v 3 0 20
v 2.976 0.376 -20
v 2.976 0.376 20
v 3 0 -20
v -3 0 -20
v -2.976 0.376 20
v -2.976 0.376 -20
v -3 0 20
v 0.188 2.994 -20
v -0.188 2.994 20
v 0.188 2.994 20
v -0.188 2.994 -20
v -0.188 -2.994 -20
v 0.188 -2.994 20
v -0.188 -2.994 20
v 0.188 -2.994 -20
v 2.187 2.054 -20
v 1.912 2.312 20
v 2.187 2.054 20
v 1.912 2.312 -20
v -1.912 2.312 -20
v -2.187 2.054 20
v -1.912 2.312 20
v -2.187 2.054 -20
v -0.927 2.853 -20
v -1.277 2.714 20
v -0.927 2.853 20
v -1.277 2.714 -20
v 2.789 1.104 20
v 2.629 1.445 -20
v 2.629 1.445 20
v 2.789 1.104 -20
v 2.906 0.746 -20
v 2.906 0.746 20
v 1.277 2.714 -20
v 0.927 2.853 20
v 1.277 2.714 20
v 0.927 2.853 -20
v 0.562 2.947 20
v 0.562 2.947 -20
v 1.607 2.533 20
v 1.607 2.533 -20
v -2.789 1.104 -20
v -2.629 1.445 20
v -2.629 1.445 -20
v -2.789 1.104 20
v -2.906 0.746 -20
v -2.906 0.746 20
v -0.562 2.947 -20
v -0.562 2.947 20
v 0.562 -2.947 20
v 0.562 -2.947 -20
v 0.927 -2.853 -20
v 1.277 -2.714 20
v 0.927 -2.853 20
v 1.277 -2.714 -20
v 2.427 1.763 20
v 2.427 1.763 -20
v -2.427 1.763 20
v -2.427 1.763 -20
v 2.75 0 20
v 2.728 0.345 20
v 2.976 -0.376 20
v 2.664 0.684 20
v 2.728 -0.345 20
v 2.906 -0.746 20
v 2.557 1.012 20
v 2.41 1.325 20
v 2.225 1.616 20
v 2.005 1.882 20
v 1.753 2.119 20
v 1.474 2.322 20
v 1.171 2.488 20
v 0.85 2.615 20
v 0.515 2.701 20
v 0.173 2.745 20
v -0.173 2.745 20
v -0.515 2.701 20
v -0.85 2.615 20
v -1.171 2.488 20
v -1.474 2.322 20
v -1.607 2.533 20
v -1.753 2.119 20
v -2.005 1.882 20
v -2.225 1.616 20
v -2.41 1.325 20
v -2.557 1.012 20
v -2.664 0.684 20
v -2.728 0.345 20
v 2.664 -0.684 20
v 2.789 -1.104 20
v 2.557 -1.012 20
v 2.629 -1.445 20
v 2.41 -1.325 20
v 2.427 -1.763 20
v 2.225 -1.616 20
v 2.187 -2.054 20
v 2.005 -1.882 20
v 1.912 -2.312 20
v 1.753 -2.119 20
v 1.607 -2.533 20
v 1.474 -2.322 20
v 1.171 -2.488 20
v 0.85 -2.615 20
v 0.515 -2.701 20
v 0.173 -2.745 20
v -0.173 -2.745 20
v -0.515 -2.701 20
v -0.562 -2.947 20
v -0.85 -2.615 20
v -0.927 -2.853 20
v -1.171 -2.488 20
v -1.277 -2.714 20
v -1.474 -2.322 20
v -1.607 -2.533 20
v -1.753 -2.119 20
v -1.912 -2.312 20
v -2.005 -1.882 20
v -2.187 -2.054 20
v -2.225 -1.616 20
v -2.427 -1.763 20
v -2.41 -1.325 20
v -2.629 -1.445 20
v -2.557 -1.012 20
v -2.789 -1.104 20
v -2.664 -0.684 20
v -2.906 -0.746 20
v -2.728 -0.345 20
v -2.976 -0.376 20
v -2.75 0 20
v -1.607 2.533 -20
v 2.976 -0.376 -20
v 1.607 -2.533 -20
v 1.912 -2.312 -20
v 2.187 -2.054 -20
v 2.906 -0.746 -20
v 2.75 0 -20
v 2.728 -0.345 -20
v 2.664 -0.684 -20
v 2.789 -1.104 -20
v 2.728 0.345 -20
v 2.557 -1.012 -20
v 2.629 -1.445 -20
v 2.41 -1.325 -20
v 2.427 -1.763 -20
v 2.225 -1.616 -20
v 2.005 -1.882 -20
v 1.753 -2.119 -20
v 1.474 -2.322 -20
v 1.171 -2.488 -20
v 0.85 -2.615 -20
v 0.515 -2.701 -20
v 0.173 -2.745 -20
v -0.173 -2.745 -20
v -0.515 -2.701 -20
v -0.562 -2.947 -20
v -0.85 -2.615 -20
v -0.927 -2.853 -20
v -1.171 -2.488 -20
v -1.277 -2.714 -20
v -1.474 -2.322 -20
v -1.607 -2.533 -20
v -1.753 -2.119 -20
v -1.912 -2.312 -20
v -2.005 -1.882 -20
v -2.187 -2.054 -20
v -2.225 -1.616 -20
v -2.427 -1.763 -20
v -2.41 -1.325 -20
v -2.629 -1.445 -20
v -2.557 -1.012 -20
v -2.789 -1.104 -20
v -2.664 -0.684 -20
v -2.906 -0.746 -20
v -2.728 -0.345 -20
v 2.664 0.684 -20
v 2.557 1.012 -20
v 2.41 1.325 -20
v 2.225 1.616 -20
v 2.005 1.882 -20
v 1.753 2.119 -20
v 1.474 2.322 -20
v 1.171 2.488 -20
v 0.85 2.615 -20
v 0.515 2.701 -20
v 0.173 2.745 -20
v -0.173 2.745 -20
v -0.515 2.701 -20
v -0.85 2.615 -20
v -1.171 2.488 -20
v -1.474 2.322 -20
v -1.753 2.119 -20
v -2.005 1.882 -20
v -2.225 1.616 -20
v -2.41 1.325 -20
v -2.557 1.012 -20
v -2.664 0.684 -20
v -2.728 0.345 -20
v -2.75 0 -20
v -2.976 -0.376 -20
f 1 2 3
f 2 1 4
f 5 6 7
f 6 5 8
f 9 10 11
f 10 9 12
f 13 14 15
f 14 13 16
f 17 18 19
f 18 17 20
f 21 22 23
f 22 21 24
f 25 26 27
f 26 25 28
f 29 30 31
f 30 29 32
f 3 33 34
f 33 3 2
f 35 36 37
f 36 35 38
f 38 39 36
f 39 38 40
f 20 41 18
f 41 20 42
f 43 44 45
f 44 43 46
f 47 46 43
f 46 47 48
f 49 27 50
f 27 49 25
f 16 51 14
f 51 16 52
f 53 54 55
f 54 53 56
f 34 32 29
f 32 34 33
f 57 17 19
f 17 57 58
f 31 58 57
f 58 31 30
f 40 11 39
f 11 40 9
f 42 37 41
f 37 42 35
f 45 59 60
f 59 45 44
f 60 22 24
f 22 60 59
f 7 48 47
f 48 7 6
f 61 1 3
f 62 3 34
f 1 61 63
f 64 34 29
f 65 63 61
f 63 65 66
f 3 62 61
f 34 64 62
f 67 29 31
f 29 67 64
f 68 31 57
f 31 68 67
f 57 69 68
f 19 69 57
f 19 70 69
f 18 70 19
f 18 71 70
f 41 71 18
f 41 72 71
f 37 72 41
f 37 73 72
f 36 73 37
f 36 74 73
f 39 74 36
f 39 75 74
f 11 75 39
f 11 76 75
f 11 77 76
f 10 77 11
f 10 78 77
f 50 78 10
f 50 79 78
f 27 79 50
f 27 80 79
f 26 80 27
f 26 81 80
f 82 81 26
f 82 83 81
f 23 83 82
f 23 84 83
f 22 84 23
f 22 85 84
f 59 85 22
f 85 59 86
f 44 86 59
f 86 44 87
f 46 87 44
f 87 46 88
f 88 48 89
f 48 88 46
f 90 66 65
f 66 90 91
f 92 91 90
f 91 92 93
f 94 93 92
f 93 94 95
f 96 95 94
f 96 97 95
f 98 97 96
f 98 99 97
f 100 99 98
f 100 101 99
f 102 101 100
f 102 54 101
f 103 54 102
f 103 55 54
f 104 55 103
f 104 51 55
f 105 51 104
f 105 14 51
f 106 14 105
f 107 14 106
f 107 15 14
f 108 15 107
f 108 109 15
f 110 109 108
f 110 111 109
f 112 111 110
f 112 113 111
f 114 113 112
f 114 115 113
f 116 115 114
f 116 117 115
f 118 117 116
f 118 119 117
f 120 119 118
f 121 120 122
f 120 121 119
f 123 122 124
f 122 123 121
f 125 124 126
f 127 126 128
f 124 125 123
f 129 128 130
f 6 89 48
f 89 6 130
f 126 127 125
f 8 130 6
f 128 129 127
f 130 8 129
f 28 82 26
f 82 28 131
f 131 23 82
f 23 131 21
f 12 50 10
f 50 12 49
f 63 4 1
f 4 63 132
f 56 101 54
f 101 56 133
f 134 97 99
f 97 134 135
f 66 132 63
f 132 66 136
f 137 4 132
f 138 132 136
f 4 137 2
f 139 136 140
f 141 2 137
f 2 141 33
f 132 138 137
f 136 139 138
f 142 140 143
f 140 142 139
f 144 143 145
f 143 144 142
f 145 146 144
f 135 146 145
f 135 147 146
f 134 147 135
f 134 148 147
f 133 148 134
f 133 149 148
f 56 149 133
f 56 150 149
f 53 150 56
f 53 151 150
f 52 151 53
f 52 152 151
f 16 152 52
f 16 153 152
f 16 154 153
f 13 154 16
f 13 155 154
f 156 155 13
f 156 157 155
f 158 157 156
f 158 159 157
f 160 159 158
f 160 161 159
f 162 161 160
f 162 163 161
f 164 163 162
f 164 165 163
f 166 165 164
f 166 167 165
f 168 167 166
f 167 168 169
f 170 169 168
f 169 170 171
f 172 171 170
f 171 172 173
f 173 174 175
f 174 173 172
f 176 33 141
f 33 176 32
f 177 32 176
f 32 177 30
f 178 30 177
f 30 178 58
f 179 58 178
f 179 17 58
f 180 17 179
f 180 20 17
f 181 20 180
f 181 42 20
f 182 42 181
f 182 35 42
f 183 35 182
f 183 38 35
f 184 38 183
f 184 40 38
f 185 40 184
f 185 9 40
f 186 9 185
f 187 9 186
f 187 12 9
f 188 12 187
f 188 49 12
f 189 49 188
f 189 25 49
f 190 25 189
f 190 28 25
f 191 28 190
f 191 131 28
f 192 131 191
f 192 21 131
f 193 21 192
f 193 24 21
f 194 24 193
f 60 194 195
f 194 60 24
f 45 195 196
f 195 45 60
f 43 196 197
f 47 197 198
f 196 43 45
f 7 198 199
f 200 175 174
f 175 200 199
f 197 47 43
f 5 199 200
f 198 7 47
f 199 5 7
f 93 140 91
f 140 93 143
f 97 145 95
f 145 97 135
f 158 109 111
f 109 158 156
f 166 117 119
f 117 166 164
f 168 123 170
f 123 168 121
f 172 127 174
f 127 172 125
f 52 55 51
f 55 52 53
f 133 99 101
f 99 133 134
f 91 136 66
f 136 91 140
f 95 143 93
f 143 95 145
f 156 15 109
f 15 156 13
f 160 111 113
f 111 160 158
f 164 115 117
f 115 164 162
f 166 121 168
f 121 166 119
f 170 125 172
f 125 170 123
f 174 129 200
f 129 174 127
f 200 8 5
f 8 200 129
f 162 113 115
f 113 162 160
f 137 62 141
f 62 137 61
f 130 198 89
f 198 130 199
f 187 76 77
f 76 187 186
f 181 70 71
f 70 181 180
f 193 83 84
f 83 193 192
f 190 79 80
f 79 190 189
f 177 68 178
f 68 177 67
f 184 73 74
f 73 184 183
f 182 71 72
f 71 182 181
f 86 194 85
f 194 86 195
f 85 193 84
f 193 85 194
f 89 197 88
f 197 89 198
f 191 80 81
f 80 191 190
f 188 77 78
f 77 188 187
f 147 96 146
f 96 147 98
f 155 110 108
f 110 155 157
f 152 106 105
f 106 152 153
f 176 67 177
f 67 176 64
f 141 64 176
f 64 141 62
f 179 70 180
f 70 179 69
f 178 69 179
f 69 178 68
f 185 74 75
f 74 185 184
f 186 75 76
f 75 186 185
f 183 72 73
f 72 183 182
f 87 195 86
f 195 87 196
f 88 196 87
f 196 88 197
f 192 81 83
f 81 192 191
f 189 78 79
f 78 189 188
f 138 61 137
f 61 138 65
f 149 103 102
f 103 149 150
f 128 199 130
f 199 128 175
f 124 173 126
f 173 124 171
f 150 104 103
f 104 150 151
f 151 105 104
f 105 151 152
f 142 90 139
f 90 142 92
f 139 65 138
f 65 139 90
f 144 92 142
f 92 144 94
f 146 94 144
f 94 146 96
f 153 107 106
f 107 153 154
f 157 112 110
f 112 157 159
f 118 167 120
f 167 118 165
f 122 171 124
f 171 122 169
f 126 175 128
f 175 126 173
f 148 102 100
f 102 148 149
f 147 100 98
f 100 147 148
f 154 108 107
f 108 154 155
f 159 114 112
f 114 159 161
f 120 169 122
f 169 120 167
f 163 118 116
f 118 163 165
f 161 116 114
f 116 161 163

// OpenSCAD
$fn = 50;


difference() {
	union() {
		translate(v = [0, 0, -20.0000000000]) {
			cylinder(h = 40, r = 3.0000000000);
		}
	}
	union() {
		translate(v = [0, 0, -100.0000000000]) {
			cylinder(h = 200, r = 2.7500000000);
		}
	}
}
